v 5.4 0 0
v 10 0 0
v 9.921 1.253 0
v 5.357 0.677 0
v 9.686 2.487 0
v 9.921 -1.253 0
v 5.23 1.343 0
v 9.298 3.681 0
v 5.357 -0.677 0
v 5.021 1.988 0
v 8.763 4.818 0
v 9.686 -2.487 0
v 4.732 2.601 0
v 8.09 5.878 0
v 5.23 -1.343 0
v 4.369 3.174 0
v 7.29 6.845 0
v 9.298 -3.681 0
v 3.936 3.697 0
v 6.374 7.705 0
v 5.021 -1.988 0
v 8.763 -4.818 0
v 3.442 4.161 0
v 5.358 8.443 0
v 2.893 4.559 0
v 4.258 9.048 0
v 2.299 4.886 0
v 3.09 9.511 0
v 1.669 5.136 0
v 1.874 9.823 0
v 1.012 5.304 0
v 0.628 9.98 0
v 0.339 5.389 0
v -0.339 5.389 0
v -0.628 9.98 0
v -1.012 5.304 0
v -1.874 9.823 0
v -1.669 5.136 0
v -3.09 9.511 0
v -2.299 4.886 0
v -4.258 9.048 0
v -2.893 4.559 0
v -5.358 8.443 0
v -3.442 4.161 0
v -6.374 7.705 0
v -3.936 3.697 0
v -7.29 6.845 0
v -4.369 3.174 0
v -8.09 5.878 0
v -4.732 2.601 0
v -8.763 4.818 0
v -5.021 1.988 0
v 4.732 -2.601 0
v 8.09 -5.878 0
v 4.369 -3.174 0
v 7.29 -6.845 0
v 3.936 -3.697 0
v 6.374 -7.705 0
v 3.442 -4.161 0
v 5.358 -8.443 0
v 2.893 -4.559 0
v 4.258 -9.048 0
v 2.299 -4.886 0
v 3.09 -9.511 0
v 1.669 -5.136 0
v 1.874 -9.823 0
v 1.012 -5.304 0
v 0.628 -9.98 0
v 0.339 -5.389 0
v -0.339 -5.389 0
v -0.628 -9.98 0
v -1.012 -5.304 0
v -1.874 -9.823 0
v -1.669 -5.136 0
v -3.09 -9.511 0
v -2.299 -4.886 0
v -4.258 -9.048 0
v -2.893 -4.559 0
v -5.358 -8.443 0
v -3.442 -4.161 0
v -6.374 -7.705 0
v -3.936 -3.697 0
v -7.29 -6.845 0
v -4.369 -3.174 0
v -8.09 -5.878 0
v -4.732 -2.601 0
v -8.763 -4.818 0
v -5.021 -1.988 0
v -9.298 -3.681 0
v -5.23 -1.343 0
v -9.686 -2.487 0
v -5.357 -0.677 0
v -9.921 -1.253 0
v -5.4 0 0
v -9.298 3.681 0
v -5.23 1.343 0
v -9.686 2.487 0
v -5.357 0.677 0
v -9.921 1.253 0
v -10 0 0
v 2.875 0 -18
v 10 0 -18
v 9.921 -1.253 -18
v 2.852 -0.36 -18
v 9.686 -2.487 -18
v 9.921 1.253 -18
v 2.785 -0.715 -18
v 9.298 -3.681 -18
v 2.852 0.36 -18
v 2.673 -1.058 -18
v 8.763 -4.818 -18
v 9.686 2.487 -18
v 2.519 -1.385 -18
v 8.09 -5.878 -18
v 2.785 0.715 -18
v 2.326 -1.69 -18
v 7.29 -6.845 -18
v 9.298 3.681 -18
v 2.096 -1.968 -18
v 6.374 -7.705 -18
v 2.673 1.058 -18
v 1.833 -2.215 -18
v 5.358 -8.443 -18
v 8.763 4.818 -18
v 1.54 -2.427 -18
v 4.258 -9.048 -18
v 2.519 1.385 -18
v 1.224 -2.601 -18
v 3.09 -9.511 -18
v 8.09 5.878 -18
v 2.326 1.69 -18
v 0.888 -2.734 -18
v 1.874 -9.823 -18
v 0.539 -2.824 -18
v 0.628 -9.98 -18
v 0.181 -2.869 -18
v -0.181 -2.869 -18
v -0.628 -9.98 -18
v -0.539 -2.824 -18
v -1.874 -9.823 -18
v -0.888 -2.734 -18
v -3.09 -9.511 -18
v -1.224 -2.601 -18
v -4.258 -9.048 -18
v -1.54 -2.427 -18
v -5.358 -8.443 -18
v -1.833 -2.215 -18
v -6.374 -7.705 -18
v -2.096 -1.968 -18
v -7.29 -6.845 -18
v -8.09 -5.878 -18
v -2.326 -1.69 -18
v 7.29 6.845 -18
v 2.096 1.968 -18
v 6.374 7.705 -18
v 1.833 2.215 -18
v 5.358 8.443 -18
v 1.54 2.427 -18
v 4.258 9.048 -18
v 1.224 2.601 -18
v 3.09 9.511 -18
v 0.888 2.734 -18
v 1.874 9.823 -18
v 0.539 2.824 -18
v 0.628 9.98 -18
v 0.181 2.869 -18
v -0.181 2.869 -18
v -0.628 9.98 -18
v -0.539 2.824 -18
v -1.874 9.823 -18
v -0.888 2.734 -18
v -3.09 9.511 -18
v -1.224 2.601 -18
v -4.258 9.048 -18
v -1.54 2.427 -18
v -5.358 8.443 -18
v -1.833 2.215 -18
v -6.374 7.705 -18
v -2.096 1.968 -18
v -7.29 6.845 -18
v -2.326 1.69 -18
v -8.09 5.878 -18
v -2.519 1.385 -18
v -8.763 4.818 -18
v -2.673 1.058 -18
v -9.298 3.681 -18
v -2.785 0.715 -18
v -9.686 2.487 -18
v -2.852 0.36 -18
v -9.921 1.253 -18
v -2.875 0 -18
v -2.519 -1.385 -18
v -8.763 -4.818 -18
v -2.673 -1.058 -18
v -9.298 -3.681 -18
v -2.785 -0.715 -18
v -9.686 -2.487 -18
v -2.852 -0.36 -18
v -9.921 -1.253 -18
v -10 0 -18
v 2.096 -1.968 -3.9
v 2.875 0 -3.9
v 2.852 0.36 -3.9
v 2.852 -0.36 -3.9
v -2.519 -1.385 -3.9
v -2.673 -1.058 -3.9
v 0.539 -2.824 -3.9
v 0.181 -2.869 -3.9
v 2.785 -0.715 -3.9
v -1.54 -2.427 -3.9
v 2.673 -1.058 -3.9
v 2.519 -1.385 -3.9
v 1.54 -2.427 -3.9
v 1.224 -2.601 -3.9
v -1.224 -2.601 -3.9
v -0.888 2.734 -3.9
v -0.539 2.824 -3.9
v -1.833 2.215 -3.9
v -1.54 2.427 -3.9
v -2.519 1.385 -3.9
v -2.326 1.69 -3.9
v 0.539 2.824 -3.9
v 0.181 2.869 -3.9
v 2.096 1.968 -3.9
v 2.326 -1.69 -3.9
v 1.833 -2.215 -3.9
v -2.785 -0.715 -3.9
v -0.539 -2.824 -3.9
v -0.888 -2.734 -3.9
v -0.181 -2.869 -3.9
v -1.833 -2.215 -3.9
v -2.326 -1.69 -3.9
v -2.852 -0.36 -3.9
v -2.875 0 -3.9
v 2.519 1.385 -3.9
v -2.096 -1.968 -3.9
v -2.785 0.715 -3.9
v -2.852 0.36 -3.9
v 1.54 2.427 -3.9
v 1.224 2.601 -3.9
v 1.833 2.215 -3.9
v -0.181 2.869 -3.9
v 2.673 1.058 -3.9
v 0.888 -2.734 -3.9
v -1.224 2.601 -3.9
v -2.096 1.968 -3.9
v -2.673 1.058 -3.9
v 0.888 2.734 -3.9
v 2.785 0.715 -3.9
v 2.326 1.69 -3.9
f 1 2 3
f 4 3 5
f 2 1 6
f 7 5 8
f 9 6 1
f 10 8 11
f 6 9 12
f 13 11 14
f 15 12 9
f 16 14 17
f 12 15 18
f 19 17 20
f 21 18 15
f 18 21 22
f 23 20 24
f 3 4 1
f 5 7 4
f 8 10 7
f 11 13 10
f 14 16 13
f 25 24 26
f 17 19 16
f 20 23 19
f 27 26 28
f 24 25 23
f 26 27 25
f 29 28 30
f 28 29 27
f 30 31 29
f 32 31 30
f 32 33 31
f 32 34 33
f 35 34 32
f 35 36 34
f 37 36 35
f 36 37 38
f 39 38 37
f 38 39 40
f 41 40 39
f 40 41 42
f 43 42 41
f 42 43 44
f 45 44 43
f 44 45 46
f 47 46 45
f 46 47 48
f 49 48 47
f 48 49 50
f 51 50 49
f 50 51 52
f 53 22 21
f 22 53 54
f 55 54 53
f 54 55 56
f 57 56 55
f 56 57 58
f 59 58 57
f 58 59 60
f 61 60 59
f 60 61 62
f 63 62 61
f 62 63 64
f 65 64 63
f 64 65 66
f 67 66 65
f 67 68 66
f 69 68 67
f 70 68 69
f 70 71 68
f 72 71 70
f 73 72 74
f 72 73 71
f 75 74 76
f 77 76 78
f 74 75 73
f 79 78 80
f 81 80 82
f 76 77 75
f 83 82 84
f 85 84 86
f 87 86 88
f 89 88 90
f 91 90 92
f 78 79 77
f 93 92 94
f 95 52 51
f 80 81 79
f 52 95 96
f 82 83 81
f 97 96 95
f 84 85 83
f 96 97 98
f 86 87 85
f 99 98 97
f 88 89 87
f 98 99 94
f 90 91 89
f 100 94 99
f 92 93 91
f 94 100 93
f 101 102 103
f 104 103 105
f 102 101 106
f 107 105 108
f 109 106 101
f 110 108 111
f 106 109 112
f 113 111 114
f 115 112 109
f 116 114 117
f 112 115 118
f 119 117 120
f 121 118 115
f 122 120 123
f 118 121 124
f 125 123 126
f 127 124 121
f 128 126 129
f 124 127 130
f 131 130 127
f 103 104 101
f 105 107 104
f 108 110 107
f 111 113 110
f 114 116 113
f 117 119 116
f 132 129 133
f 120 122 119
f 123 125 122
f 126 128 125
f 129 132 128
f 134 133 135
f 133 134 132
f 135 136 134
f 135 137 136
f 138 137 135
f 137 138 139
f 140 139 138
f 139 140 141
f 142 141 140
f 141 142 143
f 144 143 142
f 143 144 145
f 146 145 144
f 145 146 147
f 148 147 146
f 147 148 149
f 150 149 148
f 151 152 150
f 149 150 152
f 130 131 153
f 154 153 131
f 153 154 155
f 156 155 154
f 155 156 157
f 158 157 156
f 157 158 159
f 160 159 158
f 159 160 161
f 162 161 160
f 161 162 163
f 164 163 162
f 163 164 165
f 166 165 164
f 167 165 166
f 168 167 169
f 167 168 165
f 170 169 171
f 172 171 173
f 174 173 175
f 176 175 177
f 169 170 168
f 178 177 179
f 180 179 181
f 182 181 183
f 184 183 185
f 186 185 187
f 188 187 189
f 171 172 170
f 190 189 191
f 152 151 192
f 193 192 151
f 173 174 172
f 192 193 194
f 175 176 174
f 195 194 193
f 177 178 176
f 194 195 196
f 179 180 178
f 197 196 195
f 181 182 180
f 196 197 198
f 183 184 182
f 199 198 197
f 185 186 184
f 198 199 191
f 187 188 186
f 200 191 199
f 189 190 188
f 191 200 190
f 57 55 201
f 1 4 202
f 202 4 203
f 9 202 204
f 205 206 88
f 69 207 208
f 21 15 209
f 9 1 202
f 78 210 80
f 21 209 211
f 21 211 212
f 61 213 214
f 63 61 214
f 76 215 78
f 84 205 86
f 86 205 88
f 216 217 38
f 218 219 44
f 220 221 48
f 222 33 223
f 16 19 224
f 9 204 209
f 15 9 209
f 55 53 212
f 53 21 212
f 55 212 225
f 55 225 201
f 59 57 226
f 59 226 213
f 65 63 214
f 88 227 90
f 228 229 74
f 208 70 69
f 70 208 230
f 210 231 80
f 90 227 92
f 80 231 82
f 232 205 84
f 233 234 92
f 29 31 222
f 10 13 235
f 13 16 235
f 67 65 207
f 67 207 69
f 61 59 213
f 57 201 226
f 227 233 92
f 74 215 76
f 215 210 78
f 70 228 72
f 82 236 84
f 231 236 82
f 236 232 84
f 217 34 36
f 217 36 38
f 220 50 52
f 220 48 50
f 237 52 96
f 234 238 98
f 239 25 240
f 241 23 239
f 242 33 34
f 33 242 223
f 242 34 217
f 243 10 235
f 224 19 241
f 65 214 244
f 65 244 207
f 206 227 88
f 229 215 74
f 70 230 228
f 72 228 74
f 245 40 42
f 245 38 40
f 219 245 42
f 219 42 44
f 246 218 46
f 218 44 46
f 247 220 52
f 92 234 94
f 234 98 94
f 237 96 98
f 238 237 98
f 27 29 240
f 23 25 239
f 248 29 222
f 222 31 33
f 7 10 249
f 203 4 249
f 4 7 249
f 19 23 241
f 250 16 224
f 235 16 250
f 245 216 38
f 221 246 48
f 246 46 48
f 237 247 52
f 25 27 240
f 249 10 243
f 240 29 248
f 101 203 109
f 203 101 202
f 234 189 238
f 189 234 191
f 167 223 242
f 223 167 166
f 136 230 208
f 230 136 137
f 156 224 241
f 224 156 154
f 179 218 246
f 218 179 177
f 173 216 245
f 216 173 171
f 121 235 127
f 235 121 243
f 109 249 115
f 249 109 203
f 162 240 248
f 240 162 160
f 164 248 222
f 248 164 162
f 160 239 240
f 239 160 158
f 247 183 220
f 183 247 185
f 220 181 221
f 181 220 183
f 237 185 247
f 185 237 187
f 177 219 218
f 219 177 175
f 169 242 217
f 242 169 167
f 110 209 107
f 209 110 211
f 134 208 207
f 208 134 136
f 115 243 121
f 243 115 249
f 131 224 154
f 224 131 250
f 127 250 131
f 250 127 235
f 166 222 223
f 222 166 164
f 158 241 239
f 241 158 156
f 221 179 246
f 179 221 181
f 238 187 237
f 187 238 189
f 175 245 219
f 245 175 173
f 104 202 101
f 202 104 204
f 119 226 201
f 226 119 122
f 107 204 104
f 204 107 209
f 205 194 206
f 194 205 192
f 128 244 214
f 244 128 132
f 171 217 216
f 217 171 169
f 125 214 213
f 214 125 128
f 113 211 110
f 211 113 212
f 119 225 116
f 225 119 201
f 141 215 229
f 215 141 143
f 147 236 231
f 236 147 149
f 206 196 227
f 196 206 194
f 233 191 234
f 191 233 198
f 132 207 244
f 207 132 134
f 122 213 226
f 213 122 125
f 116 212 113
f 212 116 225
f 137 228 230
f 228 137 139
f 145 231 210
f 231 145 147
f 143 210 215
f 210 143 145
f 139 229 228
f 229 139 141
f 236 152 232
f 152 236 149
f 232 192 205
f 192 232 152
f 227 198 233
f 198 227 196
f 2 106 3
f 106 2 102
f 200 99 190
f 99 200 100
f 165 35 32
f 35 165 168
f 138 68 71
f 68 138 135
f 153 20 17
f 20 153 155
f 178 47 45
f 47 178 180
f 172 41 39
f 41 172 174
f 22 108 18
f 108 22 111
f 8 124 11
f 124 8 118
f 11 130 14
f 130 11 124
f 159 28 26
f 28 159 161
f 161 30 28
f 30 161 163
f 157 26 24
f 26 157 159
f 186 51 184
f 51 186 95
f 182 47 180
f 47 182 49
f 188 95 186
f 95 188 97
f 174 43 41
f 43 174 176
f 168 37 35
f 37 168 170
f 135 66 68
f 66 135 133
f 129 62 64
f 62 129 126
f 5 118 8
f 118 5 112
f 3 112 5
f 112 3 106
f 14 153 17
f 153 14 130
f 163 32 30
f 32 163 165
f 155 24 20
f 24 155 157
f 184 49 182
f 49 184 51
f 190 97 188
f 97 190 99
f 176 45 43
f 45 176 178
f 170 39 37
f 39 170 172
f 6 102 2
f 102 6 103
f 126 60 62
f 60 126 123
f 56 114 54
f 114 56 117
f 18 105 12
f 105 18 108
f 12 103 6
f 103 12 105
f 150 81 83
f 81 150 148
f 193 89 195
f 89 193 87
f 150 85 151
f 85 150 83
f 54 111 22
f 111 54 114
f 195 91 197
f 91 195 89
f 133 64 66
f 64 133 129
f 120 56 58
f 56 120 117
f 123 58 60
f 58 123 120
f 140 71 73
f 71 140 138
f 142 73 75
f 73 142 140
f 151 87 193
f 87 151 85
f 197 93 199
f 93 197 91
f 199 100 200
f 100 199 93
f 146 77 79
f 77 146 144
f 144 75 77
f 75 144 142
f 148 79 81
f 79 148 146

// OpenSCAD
$fn = 50;


difference() {
	union() {
		translate(v = [0, 0, -18.0000000000]) {
			cylinder(h = 18, r = 10.0000000000);
		}
		cylinder(h = 0, r = 20.0000000000);
	}
	union() {
		translate(v = [0, 0, 0]) {
			rotate(a = [0, 0, 0]) {
				difference() {
					union() {
						#translate(v = [0, 0, -18.0000000000]) {
							cylinder(h = 18, r = 2.6000000000);
						}
						#translate(v = [0, 0, -3.9000000000]) {
							cylinder(h = 3.9000000000, r1 = 2.8750000000, r2 = 5.4000000000);
						}
						#translate(v = [0, 0, -18.0000000000]) {
							cylinder(h = 18, r = 2.8750000000);
						}
						#translate(v = [0, 0, -18.0000000000]) {
							cylinder(h = 18, r = 2.6000000000);
						}
					}
					union();
				}
			}
		}
	}
}
